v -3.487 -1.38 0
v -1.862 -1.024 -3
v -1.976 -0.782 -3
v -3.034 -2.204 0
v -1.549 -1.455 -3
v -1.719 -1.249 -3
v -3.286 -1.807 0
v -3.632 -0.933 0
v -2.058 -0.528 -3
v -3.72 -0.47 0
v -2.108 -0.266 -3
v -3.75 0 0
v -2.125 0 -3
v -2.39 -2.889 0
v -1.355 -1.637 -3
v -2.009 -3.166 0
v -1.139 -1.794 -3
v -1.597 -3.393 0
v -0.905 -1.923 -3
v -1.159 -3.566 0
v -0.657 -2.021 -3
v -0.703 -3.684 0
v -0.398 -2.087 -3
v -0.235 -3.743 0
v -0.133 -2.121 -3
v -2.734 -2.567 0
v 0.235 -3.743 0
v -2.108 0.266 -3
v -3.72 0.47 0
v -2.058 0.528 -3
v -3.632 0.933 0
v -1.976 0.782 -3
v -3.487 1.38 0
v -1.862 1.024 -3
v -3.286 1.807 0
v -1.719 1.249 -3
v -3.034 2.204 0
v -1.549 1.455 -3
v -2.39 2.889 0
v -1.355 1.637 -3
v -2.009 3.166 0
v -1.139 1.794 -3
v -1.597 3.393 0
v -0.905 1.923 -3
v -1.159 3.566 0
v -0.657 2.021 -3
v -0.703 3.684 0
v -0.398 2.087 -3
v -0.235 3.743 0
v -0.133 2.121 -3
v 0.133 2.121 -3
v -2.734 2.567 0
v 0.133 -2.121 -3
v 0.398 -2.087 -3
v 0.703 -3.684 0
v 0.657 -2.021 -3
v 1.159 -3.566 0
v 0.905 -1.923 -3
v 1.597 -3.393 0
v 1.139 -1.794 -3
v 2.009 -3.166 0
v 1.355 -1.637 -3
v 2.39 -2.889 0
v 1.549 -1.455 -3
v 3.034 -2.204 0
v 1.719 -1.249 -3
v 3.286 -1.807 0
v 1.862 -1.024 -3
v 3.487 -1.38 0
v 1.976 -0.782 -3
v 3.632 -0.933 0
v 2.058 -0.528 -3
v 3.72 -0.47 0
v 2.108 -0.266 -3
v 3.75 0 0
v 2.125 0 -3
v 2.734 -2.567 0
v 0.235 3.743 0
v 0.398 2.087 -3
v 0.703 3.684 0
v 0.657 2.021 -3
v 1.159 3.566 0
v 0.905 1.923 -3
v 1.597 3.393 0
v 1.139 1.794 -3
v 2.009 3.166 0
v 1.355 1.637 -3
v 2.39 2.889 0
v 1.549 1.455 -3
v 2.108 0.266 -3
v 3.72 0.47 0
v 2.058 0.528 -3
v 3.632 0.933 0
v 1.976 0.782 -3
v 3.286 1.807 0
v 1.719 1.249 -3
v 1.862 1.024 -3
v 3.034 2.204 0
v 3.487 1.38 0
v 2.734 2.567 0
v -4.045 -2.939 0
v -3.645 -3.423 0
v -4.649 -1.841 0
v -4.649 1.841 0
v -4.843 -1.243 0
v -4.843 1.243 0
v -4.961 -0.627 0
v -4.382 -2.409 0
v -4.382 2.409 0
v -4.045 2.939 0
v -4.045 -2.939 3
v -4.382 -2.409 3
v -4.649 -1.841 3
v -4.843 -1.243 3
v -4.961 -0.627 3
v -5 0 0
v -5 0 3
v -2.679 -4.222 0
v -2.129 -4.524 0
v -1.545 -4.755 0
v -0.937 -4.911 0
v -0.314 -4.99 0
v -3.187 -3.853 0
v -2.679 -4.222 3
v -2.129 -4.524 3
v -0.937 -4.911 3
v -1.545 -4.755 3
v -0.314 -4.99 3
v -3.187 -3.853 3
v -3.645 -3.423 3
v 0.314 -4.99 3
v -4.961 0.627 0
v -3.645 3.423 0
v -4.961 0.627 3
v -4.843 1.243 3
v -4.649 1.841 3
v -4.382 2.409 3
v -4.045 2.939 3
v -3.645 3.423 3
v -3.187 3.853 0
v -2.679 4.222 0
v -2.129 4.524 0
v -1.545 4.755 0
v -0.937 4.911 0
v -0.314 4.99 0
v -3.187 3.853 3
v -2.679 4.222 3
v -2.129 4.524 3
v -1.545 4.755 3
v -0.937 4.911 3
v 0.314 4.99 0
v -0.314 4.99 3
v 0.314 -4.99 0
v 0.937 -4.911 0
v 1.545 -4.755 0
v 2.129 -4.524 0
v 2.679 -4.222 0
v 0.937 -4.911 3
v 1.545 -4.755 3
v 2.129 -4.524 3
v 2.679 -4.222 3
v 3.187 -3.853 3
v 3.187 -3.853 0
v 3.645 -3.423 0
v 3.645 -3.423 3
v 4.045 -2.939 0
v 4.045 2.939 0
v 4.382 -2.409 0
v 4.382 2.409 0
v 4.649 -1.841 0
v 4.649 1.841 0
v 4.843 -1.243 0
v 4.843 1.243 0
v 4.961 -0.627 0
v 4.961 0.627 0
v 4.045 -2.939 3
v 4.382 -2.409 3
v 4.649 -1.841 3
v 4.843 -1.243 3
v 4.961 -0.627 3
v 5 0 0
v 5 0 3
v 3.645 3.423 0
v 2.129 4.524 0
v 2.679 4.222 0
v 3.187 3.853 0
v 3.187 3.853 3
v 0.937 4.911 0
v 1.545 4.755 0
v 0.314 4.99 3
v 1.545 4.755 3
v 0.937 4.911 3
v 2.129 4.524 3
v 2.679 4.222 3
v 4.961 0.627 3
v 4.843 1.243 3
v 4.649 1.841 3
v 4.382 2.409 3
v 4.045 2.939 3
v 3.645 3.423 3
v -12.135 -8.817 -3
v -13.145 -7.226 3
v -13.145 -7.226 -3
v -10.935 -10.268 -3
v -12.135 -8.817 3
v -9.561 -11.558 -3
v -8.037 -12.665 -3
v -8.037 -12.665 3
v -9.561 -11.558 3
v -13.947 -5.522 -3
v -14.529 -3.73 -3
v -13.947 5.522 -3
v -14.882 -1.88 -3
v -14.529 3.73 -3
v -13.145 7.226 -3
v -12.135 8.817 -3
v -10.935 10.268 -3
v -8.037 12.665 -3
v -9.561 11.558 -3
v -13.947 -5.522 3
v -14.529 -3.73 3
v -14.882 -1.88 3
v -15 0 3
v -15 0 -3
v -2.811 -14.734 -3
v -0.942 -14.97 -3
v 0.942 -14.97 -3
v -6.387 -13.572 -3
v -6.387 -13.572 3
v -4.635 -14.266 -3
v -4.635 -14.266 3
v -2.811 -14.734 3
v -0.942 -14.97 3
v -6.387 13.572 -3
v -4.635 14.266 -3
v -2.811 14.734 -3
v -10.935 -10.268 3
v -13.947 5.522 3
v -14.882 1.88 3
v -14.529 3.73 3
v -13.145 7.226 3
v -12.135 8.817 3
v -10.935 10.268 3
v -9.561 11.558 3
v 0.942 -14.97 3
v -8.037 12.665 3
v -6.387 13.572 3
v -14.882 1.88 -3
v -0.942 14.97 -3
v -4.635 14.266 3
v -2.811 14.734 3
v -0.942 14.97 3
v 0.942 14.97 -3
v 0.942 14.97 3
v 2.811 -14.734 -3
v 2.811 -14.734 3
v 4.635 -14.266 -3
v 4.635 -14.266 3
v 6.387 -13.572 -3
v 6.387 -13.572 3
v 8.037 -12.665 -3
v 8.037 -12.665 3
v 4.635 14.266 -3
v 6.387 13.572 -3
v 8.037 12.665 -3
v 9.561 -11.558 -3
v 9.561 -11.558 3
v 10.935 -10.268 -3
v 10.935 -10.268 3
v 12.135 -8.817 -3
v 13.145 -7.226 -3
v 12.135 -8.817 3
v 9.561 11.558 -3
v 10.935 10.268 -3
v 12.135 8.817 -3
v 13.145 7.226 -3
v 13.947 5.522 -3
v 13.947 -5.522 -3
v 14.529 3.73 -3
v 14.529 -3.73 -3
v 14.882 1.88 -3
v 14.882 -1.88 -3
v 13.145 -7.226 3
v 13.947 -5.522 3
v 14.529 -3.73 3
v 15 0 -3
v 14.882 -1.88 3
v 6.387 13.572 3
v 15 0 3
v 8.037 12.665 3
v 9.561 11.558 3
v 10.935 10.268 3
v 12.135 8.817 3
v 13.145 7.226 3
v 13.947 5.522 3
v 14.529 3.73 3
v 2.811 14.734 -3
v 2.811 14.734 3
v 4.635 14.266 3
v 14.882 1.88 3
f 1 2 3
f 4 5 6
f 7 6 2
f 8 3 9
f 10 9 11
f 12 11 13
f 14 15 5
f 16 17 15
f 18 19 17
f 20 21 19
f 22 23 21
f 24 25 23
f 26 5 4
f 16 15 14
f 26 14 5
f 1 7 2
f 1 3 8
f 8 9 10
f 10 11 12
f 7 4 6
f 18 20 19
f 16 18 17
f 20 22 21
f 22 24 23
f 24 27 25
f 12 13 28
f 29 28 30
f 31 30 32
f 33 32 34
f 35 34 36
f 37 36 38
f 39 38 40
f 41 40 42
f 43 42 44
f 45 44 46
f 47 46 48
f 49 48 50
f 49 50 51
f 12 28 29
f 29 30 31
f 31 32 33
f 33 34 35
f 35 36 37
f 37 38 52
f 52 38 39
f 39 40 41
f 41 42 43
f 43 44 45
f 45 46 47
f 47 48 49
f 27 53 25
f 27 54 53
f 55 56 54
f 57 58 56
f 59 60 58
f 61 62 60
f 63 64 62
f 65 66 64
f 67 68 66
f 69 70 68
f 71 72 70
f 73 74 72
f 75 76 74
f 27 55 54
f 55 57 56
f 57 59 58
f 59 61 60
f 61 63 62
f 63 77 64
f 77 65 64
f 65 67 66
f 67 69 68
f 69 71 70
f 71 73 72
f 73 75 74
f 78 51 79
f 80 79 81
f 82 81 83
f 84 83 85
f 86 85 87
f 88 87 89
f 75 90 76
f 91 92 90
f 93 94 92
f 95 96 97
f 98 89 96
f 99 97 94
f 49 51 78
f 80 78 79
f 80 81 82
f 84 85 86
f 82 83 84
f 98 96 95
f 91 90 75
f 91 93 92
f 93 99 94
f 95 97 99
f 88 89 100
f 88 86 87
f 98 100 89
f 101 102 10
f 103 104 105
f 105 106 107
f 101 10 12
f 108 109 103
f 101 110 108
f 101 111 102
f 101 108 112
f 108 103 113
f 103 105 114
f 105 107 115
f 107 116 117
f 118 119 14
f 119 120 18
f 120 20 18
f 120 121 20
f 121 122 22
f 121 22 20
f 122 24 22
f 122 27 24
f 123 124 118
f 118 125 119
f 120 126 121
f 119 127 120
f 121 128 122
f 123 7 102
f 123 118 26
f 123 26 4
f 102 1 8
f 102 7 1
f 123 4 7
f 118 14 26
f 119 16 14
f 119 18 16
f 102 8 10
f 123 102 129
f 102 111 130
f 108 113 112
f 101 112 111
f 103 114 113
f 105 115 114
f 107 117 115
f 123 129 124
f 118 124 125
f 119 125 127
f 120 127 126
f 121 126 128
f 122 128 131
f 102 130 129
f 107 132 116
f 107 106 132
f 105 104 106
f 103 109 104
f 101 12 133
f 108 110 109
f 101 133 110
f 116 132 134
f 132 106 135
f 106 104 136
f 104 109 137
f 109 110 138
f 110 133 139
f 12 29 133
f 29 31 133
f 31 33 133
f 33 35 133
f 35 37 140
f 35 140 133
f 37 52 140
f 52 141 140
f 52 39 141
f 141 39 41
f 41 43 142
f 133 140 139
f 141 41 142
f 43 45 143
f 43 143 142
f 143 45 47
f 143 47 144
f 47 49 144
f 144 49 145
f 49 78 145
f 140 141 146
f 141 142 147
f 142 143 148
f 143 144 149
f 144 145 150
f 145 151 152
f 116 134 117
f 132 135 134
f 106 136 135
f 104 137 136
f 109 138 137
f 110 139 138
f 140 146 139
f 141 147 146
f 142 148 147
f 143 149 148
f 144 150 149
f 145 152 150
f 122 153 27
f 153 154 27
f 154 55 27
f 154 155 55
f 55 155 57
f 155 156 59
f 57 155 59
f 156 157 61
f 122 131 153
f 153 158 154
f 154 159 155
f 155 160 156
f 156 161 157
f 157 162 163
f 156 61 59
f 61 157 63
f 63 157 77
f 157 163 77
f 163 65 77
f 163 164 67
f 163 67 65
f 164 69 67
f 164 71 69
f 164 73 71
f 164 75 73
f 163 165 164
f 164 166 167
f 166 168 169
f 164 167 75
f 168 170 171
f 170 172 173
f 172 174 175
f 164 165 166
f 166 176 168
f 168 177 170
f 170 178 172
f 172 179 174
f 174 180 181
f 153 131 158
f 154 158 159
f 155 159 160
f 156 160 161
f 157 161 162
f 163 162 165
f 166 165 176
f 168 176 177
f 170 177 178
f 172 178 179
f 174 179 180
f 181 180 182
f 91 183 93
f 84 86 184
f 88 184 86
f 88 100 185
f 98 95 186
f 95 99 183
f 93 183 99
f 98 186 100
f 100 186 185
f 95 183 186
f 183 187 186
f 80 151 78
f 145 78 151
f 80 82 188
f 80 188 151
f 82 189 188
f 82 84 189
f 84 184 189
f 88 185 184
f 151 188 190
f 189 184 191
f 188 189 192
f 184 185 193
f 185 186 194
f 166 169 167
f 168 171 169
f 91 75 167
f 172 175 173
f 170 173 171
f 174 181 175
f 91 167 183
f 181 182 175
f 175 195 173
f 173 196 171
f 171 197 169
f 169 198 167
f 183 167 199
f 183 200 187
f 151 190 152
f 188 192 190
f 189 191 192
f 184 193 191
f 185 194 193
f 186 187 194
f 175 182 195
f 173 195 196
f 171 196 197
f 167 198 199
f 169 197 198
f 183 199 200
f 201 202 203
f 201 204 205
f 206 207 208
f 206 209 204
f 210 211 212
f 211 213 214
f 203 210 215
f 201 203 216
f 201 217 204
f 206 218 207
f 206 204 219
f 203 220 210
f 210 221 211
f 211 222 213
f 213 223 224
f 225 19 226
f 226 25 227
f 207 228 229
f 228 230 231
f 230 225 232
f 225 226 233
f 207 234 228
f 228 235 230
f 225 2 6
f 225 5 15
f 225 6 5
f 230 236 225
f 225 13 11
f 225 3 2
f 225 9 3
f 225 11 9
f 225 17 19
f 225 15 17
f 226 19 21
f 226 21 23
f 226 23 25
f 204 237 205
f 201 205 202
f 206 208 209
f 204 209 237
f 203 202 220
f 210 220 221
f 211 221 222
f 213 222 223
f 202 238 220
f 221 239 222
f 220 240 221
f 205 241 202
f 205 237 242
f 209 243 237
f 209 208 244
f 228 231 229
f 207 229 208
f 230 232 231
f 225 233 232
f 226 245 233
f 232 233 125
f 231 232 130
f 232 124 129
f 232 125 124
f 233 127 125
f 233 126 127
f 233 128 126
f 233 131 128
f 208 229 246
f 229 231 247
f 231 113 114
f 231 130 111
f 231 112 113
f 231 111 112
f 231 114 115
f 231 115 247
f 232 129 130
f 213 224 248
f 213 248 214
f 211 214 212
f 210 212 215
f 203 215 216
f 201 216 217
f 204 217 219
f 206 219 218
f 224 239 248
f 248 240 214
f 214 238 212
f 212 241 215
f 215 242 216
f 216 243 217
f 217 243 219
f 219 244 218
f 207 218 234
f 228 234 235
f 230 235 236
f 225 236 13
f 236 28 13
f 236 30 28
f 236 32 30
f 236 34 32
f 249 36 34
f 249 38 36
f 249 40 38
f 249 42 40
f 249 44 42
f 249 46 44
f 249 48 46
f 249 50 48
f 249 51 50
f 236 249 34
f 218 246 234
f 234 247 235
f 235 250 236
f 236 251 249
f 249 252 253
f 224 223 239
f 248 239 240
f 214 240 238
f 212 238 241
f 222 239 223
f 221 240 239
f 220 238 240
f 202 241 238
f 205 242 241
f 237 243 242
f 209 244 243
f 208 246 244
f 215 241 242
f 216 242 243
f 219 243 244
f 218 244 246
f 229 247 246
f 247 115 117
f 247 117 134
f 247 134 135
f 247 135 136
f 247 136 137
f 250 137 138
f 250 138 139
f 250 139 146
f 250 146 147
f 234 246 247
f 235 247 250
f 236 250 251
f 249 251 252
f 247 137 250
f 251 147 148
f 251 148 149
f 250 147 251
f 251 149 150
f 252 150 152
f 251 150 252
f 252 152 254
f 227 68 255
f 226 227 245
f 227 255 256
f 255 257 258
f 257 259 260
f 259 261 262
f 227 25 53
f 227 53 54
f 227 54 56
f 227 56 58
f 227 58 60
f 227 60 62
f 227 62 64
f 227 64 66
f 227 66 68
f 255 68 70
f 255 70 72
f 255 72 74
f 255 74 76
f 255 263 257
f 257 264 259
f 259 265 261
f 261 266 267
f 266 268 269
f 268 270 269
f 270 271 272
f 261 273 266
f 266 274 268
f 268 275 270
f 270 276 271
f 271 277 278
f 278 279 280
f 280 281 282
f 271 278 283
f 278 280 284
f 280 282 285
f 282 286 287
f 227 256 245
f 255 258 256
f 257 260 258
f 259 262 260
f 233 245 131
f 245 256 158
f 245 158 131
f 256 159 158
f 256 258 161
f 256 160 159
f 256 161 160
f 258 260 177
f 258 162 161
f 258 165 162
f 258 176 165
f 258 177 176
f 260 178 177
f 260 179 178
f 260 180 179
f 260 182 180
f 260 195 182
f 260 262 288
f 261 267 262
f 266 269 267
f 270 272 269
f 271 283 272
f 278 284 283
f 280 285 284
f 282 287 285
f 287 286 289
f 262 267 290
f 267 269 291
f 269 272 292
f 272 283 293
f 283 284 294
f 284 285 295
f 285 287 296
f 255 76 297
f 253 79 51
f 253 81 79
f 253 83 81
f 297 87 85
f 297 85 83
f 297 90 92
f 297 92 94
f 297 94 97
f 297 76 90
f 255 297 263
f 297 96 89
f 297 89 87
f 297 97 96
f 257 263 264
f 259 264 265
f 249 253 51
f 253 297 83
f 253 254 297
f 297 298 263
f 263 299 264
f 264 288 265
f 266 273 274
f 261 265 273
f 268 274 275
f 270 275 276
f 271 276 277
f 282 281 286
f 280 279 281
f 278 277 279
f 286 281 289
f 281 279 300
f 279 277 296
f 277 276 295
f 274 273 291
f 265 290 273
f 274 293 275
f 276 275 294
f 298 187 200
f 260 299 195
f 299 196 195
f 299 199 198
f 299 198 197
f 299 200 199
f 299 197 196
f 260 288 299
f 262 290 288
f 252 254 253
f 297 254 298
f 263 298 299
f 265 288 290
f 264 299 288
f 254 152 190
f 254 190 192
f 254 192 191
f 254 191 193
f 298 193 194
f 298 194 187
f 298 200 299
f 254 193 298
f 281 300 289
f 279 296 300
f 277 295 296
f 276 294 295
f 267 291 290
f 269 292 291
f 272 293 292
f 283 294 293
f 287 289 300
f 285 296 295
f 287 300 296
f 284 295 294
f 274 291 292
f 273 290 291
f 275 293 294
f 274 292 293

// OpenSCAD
$fn = 50;

difference() {
	union() {
		translate(v = [0, 0, -3.0]) {
			cylinder(h = 6, r = 15.0);
		}
	}
	union() {
		translate(v = [0, 0, 0]) {
			rotate(a = [0, 0, 0]) {
				difference() {
					union() {
						translate(v = [0, 0, -6.0]) {
							cylinder(h = 6, r = 2.0);
						}
						translate(v = [0, 0, -3]) {
							cylinder(h = 3, r1 = 2.125, r2 = 3.75);
						}
						translate(v = [0, 0, -6.0]) {
							cylinder(h = 6, r = 2.125);
						}
						translate(v = [0, 0, -6.0]) {
							cylinder(h = 6, r = 2.0);
						}
					}
					union();
				}
			}
		}
		#cylinder(h = 3, r = 5.0);
	}
}
